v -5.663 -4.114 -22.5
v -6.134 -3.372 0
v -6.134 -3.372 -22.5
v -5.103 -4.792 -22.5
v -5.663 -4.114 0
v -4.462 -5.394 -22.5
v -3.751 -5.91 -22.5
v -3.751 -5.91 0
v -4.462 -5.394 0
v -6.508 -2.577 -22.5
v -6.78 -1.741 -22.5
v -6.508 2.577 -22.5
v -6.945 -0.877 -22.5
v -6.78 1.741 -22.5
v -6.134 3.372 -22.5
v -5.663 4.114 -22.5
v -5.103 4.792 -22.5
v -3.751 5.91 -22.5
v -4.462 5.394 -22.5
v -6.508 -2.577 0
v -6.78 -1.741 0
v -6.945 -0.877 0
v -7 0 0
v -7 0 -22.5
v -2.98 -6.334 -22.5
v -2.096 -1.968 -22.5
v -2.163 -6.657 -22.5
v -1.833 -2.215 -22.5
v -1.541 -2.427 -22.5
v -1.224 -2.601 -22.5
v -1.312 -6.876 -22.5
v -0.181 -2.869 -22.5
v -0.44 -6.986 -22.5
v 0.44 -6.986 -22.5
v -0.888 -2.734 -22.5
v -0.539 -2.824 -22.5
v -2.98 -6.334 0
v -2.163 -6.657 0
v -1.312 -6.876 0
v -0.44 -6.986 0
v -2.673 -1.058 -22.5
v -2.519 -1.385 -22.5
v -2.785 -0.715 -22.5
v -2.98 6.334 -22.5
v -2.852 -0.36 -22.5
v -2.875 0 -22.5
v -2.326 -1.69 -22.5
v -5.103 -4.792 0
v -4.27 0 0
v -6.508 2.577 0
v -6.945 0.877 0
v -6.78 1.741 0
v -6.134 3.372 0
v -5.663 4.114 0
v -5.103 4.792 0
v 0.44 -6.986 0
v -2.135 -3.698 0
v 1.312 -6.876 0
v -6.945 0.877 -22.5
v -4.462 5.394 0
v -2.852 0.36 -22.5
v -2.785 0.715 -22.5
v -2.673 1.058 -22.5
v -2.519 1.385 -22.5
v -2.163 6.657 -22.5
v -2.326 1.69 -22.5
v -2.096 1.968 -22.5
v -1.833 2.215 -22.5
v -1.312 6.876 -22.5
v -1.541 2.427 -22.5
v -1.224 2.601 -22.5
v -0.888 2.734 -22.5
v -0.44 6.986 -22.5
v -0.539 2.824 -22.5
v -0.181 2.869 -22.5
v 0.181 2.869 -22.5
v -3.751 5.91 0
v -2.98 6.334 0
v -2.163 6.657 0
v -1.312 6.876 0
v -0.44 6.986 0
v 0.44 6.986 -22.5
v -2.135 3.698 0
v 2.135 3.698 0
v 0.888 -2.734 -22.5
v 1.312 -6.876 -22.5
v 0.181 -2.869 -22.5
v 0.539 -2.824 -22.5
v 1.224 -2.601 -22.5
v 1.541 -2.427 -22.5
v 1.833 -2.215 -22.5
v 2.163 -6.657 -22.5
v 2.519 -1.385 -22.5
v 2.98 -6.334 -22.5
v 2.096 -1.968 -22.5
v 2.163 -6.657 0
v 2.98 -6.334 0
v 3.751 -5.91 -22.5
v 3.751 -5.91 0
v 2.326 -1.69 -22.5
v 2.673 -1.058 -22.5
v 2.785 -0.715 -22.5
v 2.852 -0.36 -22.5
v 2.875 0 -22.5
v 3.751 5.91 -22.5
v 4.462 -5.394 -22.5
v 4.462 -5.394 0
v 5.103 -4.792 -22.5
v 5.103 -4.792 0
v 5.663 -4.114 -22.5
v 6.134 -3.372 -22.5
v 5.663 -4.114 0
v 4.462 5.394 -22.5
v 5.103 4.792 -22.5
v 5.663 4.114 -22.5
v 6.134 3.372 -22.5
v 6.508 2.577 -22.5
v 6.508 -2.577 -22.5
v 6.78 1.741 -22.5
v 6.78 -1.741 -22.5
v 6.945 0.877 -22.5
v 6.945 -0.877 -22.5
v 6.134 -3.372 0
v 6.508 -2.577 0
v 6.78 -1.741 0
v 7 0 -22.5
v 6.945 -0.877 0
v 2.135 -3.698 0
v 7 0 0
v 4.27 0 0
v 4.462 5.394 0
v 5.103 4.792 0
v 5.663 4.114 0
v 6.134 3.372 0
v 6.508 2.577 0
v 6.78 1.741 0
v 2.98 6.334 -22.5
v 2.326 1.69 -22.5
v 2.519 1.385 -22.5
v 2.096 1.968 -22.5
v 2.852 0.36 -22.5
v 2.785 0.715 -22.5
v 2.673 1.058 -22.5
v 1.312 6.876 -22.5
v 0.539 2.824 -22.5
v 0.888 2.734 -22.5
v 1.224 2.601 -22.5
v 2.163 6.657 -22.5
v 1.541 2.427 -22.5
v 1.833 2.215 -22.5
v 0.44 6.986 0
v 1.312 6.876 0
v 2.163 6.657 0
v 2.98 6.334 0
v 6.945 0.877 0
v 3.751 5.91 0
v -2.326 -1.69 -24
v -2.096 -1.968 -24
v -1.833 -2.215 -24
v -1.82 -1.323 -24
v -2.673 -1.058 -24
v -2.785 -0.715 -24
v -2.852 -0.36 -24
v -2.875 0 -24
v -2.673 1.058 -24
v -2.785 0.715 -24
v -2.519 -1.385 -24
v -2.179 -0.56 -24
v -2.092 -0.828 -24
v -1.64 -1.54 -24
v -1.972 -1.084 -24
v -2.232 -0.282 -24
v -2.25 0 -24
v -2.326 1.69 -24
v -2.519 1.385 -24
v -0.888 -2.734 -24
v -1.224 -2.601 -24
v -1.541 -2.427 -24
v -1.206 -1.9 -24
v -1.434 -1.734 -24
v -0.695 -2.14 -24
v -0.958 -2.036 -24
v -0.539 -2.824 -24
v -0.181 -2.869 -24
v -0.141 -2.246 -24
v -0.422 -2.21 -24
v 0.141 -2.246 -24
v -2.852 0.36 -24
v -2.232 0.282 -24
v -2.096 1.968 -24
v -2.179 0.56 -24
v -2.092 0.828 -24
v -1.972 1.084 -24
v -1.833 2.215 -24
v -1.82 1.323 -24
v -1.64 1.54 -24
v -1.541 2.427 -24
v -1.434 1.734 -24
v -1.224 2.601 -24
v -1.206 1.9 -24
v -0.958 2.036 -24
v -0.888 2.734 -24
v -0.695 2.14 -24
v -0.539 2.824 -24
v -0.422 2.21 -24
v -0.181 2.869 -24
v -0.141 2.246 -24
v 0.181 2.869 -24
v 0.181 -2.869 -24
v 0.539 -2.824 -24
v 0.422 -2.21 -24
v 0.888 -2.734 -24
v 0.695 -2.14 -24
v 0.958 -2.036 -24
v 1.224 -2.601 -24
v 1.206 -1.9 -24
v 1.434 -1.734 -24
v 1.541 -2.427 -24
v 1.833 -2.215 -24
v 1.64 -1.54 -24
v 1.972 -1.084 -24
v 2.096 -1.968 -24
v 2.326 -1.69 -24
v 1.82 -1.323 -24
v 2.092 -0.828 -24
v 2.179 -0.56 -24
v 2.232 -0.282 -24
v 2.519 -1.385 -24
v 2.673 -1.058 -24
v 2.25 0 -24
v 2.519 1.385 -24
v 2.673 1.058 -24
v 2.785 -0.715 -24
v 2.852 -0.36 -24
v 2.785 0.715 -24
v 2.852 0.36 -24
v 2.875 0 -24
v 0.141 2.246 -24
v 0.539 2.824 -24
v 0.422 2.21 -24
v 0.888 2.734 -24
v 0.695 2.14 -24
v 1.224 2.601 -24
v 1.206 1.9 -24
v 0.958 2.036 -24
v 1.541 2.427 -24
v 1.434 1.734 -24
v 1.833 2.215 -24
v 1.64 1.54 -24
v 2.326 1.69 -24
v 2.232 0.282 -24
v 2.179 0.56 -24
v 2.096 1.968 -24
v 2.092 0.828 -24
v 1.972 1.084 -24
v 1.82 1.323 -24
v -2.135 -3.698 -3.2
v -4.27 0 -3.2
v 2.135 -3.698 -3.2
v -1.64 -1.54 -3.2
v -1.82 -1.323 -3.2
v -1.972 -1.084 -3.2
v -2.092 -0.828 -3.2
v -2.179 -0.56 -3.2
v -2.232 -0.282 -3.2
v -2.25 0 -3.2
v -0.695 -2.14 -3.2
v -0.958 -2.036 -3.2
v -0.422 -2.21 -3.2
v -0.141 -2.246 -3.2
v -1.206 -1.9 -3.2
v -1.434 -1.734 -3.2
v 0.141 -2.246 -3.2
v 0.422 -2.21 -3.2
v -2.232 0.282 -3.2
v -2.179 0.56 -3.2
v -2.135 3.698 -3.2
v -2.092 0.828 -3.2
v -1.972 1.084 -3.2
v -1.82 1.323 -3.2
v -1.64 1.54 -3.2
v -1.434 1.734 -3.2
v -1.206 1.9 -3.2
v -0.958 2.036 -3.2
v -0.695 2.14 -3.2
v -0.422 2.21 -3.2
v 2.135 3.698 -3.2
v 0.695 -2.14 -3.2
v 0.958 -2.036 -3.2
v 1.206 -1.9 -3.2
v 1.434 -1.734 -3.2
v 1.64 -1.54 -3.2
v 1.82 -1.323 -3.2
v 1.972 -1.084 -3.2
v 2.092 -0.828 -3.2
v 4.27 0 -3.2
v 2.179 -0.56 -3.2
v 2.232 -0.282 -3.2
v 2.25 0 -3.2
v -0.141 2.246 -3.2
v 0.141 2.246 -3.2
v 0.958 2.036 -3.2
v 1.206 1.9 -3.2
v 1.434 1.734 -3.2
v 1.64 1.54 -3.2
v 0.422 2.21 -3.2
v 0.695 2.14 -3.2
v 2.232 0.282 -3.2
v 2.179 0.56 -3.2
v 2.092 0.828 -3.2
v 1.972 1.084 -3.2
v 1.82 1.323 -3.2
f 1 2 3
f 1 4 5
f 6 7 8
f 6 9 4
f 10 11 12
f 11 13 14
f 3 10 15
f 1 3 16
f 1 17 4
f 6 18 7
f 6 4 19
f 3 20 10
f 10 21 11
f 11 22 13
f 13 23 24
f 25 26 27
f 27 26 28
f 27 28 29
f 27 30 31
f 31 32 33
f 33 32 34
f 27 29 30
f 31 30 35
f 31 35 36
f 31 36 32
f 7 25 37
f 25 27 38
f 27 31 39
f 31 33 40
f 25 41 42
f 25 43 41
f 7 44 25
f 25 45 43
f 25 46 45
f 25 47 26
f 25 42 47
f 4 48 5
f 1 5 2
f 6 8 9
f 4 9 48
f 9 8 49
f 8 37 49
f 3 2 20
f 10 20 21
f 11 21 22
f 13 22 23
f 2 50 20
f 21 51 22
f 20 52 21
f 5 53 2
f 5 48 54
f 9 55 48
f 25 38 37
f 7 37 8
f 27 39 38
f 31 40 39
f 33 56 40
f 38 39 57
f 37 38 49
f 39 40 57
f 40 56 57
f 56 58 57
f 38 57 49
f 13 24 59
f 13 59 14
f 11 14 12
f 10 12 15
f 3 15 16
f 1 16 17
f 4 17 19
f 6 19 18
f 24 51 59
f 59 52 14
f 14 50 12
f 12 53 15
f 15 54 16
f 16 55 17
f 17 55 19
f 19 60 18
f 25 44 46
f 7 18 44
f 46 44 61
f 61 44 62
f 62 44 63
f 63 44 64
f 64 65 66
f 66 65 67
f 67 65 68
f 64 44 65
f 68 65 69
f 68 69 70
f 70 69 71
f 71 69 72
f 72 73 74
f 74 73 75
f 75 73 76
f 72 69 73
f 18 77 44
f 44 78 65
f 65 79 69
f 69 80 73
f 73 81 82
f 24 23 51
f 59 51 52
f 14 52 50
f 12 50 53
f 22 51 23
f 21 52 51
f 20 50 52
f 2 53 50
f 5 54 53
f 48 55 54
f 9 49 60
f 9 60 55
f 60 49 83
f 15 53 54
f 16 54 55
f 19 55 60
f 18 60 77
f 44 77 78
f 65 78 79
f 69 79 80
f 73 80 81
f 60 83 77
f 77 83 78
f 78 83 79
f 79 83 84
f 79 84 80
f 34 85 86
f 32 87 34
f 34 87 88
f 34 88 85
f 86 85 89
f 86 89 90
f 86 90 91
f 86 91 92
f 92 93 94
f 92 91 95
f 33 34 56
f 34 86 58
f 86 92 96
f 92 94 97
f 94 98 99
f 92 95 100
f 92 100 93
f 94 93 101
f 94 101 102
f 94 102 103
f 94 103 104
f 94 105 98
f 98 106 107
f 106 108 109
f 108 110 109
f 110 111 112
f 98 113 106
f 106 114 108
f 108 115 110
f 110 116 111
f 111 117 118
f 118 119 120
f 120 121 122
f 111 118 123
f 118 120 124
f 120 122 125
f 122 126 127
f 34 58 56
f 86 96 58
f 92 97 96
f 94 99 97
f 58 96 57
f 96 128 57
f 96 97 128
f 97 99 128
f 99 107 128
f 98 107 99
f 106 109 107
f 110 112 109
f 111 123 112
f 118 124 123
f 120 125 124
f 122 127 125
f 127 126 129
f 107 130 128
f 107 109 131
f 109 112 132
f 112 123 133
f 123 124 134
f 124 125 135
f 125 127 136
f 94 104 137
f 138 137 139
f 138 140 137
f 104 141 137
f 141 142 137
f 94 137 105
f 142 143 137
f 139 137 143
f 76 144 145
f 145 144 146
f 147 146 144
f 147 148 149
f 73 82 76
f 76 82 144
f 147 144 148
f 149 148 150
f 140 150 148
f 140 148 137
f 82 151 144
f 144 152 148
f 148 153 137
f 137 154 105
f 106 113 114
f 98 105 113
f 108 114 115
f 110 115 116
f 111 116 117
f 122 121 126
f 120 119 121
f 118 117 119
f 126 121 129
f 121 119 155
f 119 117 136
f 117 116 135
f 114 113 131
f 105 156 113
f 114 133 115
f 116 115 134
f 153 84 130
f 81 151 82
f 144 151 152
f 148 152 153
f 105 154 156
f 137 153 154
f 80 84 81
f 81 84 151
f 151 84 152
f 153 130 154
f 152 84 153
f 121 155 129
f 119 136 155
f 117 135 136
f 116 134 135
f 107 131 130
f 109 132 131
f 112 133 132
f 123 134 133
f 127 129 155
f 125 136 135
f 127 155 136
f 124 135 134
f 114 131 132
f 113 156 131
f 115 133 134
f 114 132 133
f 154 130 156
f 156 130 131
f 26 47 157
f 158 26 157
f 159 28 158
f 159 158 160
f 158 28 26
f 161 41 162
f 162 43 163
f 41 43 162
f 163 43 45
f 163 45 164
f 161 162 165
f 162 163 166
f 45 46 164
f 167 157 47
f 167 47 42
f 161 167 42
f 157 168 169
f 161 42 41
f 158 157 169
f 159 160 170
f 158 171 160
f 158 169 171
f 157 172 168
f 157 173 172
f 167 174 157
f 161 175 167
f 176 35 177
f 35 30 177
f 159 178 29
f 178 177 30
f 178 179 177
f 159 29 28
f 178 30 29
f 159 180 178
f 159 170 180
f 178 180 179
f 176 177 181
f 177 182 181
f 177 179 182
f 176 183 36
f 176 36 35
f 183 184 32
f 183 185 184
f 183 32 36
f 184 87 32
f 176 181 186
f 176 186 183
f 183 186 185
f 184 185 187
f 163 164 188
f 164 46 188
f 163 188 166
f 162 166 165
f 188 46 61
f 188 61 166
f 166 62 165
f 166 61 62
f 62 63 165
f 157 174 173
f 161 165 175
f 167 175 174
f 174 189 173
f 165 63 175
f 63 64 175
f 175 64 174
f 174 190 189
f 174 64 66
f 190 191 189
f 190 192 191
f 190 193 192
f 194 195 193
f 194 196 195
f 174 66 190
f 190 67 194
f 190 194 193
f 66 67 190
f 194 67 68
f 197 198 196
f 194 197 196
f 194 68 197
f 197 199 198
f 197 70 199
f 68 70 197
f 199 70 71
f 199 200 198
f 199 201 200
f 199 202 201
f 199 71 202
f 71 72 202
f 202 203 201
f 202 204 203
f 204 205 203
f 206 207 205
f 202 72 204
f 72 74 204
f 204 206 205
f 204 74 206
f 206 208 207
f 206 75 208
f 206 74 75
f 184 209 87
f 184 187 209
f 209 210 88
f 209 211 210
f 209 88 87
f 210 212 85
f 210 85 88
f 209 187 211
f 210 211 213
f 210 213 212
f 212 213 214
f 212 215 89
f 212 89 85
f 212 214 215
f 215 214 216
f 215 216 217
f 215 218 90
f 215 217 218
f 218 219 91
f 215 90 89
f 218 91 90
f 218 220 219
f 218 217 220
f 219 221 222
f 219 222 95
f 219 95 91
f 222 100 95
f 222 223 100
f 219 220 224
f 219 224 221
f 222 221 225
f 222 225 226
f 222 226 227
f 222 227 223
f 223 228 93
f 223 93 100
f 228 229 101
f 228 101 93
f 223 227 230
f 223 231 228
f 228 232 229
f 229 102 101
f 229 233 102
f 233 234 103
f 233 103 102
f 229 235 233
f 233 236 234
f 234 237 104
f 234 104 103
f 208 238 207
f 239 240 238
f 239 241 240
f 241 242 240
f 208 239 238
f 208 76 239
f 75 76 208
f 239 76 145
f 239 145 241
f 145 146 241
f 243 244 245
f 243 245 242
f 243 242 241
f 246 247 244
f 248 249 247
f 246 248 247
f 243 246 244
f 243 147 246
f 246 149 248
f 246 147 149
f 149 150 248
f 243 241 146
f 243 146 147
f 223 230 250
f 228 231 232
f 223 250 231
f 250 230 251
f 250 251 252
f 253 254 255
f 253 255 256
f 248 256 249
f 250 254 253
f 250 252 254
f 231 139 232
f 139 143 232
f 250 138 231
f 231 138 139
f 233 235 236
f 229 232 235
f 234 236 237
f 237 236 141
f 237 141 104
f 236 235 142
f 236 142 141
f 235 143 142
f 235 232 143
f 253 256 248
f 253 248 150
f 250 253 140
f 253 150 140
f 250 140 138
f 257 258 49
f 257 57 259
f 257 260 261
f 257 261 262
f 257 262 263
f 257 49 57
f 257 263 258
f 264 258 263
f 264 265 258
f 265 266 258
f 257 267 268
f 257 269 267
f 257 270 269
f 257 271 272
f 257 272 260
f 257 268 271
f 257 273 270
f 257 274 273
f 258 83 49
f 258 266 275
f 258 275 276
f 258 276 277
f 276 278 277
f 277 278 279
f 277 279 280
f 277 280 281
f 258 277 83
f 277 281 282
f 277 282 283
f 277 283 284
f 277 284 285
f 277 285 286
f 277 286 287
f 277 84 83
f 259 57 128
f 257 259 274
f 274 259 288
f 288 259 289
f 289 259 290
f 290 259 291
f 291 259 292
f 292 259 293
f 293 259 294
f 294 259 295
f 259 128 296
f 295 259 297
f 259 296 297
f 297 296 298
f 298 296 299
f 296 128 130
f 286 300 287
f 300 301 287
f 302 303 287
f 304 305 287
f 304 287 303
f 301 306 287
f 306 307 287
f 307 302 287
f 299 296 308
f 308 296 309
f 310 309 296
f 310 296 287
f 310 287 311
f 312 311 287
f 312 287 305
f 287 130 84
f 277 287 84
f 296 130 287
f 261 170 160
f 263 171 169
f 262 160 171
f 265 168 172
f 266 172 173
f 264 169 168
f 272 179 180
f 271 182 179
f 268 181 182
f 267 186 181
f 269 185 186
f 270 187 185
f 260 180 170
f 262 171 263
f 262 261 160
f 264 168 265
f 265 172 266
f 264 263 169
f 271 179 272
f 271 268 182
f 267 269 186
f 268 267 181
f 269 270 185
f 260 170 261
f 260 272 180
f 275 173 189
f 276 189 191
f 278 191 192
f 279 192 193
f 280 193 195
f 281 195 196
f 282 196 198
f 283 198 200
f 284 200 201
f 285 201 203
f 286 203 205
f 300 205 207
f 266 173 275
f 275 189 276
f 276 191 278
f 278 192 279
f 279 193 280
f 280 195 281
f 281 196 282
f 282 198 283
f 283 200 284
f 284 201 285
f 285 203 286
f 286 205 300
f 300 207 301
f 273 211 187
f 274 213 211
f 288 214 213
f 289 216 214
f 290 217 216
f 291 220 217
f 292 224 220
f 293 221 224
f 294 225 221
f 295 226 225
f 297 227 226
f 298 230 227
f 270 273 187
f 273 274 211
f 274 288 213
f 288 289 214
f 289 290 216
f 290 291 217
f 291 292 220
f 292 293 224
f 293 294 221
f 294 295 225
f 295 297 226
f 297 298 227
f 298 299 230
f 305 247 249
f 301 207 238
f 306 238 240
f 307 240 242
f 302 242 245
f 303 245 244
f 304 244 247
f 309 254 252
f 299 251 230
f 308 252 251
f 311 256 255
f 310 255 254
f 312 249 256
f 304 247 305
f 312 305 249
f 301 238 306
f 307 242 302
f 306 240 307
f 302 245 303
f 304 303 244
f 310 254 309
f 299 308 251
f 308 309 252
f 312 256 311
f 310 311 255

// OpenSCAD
$fn = 50;

difference() {
	union() {
		translate(v = [0, 0, -22.5]) {
			cylinder(h = 22.5, r = 7.0);
		}
		#translate(v = [0, 0, -24.0]) {
			cylinder(h = 24, r = 2.875);
		}
	}
	union() {
		translate(v = [0, 0, 0]) {
			rotate(a = [0, 0, 0]) {
				difference() {
					union() {
						translate(v = [0, 0, -3.2]) {
							linear_extrude(height = 3.2) {
								polygon(points = [[4.2698, 0.0], [2.1349000000000005, 3.697755269078796], [-2.134899999999999, 3.6977552690787965], [-4.2698, 5.228996902999369e-16], [-2.134900000000002, -3.6977552690787956], [2.1348999999999974, -3.697755269078798]]);
							}
						}
					}
					union();
				}
			}
		}
		#translate(v = [0, 0, -100.0]) {
			cylinder(h = 200, r = 2.25);
		}
	}
}
